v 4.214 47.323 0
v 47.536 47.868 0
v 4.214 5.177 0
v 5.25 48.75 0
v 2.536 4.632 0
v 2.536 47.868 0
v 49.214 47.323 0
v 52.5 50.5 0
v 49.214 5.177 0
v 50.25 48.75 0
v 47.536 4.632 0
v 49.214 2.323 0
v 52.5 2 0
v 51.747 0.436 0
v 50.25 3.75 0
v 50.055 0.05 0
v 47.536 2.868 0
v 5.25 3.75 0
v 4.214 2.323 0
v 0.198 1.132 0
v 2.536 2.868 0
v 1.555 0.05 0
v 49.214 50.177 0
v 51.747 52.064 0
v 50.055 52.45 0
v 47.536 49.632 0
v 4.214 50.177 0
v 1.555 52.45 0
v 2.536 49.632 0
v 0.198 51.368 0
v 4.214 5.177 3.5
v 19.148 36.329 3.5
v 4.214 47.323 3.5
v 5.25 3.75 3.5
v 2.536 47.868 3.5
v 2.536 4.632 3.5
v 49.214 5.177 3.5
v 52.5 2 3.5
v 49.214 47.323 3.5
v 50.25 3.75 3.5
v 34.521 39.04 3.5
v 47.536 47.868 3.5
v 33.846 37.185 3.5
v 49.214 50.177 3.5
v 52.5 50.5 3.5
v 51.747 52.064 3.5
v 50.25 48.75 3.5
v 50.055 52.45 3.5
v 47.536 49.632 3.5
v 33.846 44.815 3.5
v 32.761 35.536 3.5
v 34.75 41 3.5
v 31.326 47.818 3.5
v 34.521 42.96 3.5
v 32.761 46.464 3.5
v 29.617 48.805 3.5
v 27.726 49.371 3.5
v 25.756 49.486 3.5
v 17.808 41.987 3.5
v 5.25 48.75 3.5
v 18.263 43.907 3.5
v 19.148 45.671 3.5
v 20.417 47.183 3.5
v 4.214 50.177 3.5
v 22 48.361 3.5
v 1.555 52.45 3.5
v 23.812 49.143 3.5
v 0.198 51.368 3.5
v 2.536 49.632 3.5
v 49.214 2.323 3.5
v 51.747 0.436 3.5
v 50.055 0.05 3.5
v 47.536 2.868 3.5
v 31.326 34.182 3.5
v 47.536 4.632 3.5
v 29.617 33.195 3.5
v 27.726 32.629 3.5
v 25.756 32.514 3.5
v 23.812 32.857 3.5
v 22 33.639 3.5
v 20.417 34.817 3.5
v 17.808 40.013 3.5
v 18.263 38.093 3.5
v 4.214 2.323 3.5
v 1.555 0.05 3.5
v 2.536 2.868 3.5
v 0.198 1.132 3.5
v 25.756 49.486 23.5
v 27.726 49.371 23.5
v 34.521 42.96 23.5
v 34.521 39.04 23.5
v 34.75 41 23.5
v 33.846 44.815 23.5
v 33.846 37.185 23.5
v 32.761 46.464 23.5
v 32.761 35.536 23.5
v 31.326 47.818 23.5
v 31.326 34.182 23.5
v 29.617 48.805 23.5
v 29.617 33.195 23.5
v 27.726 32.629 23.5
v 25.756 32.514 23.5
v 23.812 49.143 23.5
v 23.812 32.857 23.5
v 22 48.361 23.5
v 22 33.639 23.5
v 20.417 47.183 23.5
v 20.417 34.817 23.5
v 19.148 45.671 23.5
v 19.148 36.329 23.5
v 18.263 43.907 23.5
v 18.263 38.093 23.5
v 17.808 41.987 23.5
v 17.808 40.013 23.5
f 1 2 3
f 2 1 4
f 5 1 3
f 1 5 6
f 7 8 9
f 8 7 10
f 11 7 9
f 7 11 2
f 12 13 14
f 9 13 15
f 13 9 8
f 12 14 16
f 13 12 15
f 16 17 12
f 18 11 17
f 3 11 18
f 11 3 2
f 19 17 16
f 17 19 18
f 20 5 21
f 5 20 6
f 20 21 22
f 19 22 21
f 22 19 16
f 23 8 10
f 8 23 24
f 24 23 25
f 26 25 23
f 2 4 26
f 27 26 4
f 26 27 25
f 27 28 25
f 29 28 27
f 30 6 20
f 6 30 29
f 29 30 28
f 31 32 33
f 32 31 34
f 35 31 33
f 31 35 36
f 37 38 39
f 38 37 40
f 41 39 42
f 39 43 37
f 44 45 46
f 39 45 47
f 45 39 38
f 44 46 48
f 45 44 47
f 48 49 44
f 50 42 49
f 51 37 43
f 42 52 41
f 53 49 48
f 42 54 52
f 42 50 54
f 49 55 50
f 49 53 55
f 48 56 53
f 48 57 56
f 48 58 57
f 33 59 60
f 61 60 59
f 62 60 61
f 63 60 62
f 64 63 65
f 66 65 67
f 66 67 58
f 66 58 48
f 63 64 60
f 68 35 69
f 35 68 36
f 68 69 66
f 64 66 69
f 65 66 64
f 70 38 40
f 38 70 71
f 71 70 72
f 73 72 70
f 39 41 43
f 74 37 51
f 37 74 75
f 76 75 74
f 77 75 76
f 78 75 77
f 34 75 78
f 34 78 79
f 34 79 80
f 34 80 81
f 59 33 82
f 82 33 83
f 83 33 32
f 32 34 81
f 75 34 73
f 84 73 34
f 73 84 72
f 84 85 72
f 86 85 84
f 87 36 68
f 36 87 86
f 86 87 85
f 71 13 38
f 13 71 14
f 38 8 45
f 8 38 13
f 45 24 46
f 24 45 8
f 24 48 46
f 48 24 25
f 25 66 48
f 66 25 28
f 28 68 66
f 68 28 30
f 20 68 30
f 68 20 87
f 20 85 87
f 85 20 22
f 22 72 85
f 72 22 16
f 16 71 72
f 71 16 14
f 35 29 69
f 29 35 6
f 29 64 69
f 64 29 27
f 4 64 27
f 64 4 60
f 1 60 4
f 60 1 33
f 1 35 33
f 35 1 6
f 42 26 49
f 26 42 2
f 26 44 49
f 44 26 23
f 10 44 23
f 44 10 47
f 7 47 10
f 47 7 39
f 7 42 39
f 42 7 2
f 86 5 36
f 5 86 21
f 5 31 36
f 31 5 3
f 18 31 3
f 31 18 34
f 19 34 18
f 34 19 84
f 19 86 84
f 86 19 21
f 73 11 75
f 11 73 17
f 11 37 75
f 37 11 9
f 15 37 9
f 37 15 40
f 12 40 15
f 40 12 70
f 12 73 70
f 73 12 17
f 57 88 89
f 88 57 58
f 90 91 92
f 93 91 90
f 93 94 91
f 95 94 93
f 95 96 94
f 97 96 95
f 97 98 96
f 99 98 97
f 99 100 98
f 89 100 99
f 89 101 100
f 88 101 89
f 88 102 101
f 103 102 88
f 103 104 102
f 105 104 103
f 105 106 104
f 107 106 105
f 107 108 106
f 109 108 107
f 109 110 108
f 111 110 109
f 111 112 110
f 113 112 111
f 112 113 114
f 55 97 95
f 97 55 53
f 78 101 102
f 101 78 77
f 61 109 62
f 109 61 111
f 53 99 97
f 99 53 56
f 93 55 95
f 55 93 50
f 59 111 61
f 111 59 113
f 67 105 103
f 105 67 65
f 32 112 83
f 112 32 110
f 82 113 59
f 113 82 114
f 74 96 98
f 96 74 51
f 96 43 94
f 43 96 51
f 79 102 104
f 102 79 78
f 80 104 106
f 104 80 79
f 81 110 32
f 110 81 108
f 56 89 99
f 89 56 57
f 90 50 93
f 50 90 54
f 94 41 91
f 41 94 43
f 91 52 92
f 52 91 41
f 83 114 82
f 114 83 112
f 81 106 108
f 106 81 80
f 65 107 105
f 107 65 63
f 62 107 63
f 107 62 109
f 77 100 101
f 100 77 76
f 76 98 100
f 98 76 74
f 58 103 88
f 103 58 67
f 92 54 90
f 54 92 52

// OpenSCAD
HOLE_SPACING = 45;
HOLE_RADIUS = 1.5;
BACKING_PADDING = 3;
PEG_DIAMETER = 17;
PEG_DEPTH = 20;

CORNER_RADIUS = 2;
DEPTH = 3.5;

total_width = HOLE_SPACING + HOLE_RADIUS + BACKING_PADDING * 2;

module rounded_square( width, radius_corner ) {
    translate( [ radius_corner, radius_corner, 0 ] )
    minkowski() {
        square( width - 2 * radius_corner );
        circle( radius_corner );
    }
}

module holes() {
    translate([BACKING_PADDING + HOLE_RADIUS / 2, BACKING_PADDING + HOLE_RADIUS / 2, 0])
    union() {
        translate([0, 0, 0])
        circle(HOLE_RADIUS);
        
        translate([HOLE_SPACING, 0, 0])
        circle(HOLE_RADIUS);
        
        translate([0, HOLE_SPACING, 0])
        circle(HOLE_RADIUS);
        
        translate([HOLE_SPACING, HOLE_SPACING, 0])
        circle(HOLE_RADIUS);
    }
}

module peg() {
    total_depth = DEPTH + PEG_DEPTH;
    x = total_width / 2;
    y = total_width - BACKING_PADDING - PEG_DIAMETER / 2;

    linear_extrude(total_depth)
    translate([x, y, 0])
    circle(d=PEG_DIAMETER);
}

union() {
    linear_extrude(DEPTH)
    difference() {
        union() {
            rounded_square(total_width, CORNER_RADIUS);
        }
        holes();
    }
    peg();
}
